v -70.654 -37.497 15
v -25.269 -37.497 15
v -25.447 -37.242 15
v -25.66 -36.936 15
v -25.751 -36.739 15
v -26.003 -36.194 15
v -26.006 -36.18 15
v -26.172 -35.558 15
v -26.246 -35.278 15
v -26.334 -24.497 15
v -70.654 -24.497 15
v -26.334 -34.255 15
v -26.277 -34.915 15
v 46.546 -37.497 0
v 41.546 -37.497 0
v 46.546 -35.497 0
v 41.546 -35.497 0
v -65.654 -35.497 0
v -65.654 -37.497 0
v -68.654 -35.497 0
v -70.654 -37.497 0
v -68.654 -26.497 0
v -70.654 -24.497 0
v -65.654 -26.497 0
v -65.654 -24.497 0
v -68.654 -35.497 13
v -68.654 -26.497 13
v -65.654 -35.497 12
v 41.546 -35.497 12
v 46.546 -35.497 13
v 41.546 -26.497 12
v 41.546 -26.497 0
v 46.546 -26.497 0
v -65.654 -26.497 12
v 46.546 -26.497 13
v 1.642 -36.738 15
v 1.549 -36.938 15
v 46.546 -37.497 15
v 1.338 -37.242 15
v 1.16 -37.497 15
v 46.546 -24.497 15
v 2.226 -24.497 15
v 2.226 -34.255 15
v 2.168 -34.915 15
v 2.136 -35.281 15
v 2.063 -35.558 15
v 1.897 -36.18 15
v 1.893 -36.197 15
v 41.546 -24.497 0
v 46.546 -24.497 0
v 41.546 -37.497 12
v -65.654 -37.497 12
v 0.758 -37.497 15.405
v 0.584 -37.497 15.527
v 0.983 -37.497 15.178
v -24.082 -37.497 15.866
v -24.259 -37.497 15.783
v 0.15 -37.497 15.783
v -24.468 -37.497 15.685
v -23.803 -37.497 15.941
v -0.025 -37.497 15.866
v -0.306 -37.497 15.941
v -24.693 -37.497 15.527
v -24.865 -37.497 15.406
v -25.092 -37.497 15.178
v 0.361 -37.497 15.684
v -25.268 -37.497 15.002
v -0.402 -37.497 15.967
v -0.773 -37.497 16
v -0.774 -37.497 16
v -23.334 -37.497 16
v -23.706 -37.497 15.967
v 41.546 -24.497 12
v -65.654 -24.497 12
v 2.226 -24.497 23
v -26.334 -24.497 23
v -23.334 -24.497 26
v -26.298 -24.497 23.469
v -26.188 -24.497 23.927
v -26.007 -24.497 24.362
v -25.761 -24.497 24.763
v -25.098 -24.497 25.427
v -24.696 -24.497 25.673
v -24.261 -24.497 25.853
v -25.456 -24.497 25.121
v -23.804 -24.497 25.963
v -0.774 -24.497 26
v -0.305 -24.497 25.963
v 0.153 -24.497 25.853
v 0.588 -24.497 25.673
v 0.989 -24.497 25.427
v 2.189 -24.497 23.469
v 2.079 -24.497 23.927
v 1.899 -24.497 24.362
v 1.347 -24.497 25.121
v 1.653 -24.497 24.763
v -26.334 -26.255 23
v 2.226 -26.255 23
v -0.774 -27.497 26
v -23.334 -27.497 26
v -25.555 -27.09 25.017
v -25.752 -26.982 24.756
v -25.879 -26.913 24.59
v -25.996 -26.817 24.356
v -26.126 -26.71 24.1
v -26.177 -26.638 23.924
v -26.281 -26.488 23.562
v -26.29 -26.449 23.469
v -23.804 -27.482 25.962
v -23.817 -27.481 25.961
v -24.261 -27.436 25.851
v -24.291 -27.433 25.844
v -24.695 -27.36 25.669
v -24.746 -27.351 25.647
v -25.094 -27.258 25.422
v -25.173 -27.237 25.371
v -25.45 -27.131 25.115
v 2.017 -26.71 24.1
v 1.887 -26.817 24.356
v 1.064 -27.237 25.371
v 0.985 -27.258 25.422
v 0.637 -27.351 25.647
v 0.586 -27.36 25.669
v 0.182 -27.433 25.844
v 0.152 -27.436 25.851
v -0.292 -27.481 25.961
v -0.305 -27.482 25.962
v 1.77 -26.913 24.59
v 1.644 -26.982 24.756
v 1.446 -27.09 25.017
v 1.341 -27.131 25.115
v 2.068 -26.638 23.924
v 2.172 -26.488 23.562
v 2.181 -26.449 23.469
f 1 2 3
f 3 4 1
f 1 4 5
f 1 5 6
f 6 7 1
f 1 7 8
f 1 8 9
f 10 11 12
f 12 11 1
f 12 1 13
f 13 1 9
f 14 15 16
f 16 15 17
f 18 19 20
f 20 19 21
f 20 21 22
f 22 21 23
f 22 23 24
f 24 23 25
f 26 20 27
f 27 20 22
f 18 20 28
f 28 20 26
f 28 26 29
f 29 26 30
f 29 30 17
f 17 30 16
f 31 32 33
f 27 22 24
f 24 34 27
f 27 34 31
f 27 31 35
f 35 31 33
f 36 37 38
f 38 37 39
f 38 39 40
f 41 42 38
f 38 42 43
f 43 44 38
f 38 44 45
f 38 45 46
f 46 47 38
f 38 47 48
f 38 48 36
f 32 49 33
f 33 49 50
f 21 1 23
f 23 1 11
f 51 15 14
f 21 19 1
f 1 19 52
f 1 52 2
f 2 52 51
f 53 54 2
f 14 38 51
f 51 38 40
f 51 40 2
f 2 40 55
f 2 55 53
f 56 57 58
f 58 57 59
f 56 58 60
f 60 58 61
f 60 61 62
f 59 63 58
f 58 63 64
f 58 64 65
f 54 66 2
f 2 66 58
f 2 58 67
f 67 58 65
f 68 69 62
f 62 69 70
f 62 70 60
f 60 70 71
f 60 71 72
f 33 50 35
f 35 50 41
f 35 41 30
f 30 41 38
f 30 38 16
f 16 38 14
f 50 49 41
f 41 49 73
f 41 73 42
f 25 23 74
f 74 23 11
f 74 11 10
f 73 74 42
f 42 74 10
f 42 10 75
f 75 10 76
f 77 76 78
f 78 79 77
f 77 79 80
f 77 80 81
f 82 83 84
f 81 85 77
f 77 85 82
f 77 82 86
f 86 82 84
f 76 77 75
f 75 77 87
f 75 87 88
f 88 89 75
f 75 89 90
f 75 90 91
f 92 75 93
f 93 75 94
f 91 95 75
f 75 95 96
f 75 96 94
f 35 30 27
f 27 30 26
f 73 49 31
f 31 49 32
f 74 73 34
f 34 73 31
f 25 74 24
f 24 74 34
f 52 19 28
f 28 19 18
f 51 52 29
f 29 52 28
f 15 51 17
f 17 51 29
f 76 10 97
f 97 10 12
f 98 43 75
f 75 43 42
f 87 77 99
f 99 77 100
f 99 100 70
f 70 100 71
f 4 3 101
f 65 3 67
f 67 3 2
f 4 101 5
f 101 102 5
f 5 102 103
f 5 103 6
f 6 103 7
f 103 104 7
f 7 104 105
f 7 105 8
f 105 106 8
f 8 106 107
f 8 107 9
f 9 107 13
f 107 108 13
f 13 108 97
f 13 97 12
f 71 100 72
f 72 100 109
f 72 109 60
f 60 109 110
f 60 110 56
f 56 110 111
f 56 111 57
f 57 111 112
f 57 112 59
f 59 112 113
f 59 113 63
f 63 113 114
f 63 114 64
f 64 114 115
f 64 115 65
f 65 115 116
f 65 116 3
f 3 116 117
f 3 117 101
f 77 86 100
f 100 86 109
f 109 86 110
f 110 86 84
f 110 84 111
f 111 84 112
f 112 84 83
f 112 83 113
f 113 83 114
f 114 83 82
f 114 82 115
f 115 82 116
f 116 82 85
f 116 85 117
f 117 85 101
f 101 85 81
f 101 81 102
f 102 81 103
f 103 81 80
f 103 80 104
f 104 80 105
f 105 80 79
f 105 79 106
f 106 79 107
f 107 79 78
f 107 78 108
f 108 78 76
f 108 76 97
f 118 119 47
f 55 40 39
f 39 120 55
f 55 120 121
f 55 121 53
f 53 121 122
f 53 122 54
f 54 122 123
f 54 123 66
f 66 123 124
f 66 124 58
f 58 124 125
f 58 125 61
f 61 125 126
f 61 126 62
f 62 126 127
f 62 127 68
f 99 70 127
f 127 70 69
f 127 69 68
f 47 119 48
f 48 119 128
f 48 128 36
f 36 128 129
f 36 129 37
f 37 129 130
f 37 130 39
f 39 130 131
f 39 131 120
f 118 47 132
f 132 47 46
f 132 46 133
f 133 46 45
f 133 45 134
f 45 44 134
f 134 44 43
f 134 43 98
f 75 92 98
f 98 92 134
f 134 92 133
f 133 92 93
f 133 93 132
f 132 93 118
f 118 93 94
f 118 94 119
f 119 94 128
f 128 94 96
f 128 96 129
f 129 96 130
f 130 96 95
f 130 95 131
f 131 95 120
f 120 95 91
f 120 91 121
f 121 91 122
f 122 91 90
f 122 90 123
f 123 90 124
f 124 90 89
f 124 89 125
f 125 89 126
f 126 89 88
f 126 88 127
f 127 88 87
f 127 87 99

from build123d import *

# Parameters (mm, degrees)
SKETCH1_W           = 117.2
SKETCH1_H           = 13
SKETCH1_W_2         = 113.2
SKETCH1_H_2         = 9
BOSS_EXTRUDE1_DEPTH = 15
SKETCH2_W           = 117.2
SKETCH2_H           = 13
BOSS_EXTRUDE2_DEPTH = 2
SKETCH3_W           = 107.2
SKETCH3_H           = 12
CUT_EXTRUDE1_DEPTH  = 74.389715066
CUT_EXTRUDE2_REACH  = 125.963
SKETCH4_W           = 13
SKETCH4_H           = 9
SKETCH5_W           = 28.56
SKETCH5_H           = 13
BOSS_EXTRUDE3_DEPTH = 11
CHAMFER1_SIZE       = 10
FILLET1_R           = 3
FILLET2_R           = 3


with BuildPart() as part:
    # Sketch1 → Boss-Extrude1 (new body)
    with BuildSketch(Plane.XY):
        with Locations((-12.05444273, -30.99749435)):
            Rectangle(SKETCH1_W, SKETCH1_H)
        with Locations((-12.05444273, -30.99749435)):
            Rectangle(SKETCH1_W_2, SKETCH1_H_2, mode=Mode.SUBTRACT)
    extrude(amount=BOSS_EXTRUDE1_DEPTH)

    # Sketch2 → Boss-Extrude2 (add)
    with BuildSketch(Plane.XY.offset(15)):
        with Locations((-12.05444273, -30.99749435)):
            Rectangle(SKETCH2_W, SKETCH2_H)
    extrude(amount=-BOSS_EXTRUDE2_DEPTH)

    # Sketch3 → Cut-Extrude1 (cut, through all)
    with BuildSketch(Plane.XZ.offset(37.49749435)):
        with Locations((-12.05444273, 6)):
            Rectangle(SKETCH3_W, SKETCH3_H)
    extrude(amount=-CUT_EXTRUDE1_DEPTH, mode=Mode.SUBTRACT)

    # Sketch4 → Cut-Extrude2 (cut, up to next)
    with BuildSketch(Plane(origin=(46.54555727, 0, 0), x_dir=(0, 0, -1), z_dir=(1, 0, 0)), mode=Mode.PRIVATE) as cut_extrude2_sk1:
        with Locations((-6.5, -30.99749435)):
            Rectangle(SKETCH4_W, SKETCH4_H)
    cut_extrude2_tool1 = extrude(cut_extrude2_sk1.sketch, amount=-CUT_EXTRUDE2_REACH, mode=Mode.PRIVATE) & part.part
    add(cut_extrude2_tool1.solids().sort_by_distance((46.545557, -30.997494, 6.5))[0], mode=Mode.SUBTRACT)

    # Sketch5 → Boss-Extrude3 (add)
    with BuildSketch(Plane.XY.offset(15)):
        with Locations((-12.05444273, -30.99749435)):
            Rectangle(SKETCH5_W, SKETCH5_H)
    extrude(amount=BOSS_EXTRUDE3_DEPTH)

    # Chamfer1
    chamfer1_edges = [part.edges().sort_by_distance(p)[0] for p in [
        (-12.05444273, -37.49749435, 26),
    ]]
    chamfer(chamfer1_edges, length=CHAMFER1_SIZE)

    # Fillet1
    fillet1_edges = [part.edges().sort_by_distance(p)[0] for p in [
        (-26.33444273, -25.99749435, 26),
        (-26.33444273, -32.49749435, 21),
    ]]
    fillet(fillet1_edges, radius=FILLET1_R)

    # Fillet2
    fillet2_edges = [part.edges().sort_by_distance(p)[0] for p in [
        (2.22555727, -25.99749435, 26),
        (2.22555727, -32.49749435, 21),
    ]]
    fillet(fillet2_edges, radius=FILLET2_R)


solid = part.part
